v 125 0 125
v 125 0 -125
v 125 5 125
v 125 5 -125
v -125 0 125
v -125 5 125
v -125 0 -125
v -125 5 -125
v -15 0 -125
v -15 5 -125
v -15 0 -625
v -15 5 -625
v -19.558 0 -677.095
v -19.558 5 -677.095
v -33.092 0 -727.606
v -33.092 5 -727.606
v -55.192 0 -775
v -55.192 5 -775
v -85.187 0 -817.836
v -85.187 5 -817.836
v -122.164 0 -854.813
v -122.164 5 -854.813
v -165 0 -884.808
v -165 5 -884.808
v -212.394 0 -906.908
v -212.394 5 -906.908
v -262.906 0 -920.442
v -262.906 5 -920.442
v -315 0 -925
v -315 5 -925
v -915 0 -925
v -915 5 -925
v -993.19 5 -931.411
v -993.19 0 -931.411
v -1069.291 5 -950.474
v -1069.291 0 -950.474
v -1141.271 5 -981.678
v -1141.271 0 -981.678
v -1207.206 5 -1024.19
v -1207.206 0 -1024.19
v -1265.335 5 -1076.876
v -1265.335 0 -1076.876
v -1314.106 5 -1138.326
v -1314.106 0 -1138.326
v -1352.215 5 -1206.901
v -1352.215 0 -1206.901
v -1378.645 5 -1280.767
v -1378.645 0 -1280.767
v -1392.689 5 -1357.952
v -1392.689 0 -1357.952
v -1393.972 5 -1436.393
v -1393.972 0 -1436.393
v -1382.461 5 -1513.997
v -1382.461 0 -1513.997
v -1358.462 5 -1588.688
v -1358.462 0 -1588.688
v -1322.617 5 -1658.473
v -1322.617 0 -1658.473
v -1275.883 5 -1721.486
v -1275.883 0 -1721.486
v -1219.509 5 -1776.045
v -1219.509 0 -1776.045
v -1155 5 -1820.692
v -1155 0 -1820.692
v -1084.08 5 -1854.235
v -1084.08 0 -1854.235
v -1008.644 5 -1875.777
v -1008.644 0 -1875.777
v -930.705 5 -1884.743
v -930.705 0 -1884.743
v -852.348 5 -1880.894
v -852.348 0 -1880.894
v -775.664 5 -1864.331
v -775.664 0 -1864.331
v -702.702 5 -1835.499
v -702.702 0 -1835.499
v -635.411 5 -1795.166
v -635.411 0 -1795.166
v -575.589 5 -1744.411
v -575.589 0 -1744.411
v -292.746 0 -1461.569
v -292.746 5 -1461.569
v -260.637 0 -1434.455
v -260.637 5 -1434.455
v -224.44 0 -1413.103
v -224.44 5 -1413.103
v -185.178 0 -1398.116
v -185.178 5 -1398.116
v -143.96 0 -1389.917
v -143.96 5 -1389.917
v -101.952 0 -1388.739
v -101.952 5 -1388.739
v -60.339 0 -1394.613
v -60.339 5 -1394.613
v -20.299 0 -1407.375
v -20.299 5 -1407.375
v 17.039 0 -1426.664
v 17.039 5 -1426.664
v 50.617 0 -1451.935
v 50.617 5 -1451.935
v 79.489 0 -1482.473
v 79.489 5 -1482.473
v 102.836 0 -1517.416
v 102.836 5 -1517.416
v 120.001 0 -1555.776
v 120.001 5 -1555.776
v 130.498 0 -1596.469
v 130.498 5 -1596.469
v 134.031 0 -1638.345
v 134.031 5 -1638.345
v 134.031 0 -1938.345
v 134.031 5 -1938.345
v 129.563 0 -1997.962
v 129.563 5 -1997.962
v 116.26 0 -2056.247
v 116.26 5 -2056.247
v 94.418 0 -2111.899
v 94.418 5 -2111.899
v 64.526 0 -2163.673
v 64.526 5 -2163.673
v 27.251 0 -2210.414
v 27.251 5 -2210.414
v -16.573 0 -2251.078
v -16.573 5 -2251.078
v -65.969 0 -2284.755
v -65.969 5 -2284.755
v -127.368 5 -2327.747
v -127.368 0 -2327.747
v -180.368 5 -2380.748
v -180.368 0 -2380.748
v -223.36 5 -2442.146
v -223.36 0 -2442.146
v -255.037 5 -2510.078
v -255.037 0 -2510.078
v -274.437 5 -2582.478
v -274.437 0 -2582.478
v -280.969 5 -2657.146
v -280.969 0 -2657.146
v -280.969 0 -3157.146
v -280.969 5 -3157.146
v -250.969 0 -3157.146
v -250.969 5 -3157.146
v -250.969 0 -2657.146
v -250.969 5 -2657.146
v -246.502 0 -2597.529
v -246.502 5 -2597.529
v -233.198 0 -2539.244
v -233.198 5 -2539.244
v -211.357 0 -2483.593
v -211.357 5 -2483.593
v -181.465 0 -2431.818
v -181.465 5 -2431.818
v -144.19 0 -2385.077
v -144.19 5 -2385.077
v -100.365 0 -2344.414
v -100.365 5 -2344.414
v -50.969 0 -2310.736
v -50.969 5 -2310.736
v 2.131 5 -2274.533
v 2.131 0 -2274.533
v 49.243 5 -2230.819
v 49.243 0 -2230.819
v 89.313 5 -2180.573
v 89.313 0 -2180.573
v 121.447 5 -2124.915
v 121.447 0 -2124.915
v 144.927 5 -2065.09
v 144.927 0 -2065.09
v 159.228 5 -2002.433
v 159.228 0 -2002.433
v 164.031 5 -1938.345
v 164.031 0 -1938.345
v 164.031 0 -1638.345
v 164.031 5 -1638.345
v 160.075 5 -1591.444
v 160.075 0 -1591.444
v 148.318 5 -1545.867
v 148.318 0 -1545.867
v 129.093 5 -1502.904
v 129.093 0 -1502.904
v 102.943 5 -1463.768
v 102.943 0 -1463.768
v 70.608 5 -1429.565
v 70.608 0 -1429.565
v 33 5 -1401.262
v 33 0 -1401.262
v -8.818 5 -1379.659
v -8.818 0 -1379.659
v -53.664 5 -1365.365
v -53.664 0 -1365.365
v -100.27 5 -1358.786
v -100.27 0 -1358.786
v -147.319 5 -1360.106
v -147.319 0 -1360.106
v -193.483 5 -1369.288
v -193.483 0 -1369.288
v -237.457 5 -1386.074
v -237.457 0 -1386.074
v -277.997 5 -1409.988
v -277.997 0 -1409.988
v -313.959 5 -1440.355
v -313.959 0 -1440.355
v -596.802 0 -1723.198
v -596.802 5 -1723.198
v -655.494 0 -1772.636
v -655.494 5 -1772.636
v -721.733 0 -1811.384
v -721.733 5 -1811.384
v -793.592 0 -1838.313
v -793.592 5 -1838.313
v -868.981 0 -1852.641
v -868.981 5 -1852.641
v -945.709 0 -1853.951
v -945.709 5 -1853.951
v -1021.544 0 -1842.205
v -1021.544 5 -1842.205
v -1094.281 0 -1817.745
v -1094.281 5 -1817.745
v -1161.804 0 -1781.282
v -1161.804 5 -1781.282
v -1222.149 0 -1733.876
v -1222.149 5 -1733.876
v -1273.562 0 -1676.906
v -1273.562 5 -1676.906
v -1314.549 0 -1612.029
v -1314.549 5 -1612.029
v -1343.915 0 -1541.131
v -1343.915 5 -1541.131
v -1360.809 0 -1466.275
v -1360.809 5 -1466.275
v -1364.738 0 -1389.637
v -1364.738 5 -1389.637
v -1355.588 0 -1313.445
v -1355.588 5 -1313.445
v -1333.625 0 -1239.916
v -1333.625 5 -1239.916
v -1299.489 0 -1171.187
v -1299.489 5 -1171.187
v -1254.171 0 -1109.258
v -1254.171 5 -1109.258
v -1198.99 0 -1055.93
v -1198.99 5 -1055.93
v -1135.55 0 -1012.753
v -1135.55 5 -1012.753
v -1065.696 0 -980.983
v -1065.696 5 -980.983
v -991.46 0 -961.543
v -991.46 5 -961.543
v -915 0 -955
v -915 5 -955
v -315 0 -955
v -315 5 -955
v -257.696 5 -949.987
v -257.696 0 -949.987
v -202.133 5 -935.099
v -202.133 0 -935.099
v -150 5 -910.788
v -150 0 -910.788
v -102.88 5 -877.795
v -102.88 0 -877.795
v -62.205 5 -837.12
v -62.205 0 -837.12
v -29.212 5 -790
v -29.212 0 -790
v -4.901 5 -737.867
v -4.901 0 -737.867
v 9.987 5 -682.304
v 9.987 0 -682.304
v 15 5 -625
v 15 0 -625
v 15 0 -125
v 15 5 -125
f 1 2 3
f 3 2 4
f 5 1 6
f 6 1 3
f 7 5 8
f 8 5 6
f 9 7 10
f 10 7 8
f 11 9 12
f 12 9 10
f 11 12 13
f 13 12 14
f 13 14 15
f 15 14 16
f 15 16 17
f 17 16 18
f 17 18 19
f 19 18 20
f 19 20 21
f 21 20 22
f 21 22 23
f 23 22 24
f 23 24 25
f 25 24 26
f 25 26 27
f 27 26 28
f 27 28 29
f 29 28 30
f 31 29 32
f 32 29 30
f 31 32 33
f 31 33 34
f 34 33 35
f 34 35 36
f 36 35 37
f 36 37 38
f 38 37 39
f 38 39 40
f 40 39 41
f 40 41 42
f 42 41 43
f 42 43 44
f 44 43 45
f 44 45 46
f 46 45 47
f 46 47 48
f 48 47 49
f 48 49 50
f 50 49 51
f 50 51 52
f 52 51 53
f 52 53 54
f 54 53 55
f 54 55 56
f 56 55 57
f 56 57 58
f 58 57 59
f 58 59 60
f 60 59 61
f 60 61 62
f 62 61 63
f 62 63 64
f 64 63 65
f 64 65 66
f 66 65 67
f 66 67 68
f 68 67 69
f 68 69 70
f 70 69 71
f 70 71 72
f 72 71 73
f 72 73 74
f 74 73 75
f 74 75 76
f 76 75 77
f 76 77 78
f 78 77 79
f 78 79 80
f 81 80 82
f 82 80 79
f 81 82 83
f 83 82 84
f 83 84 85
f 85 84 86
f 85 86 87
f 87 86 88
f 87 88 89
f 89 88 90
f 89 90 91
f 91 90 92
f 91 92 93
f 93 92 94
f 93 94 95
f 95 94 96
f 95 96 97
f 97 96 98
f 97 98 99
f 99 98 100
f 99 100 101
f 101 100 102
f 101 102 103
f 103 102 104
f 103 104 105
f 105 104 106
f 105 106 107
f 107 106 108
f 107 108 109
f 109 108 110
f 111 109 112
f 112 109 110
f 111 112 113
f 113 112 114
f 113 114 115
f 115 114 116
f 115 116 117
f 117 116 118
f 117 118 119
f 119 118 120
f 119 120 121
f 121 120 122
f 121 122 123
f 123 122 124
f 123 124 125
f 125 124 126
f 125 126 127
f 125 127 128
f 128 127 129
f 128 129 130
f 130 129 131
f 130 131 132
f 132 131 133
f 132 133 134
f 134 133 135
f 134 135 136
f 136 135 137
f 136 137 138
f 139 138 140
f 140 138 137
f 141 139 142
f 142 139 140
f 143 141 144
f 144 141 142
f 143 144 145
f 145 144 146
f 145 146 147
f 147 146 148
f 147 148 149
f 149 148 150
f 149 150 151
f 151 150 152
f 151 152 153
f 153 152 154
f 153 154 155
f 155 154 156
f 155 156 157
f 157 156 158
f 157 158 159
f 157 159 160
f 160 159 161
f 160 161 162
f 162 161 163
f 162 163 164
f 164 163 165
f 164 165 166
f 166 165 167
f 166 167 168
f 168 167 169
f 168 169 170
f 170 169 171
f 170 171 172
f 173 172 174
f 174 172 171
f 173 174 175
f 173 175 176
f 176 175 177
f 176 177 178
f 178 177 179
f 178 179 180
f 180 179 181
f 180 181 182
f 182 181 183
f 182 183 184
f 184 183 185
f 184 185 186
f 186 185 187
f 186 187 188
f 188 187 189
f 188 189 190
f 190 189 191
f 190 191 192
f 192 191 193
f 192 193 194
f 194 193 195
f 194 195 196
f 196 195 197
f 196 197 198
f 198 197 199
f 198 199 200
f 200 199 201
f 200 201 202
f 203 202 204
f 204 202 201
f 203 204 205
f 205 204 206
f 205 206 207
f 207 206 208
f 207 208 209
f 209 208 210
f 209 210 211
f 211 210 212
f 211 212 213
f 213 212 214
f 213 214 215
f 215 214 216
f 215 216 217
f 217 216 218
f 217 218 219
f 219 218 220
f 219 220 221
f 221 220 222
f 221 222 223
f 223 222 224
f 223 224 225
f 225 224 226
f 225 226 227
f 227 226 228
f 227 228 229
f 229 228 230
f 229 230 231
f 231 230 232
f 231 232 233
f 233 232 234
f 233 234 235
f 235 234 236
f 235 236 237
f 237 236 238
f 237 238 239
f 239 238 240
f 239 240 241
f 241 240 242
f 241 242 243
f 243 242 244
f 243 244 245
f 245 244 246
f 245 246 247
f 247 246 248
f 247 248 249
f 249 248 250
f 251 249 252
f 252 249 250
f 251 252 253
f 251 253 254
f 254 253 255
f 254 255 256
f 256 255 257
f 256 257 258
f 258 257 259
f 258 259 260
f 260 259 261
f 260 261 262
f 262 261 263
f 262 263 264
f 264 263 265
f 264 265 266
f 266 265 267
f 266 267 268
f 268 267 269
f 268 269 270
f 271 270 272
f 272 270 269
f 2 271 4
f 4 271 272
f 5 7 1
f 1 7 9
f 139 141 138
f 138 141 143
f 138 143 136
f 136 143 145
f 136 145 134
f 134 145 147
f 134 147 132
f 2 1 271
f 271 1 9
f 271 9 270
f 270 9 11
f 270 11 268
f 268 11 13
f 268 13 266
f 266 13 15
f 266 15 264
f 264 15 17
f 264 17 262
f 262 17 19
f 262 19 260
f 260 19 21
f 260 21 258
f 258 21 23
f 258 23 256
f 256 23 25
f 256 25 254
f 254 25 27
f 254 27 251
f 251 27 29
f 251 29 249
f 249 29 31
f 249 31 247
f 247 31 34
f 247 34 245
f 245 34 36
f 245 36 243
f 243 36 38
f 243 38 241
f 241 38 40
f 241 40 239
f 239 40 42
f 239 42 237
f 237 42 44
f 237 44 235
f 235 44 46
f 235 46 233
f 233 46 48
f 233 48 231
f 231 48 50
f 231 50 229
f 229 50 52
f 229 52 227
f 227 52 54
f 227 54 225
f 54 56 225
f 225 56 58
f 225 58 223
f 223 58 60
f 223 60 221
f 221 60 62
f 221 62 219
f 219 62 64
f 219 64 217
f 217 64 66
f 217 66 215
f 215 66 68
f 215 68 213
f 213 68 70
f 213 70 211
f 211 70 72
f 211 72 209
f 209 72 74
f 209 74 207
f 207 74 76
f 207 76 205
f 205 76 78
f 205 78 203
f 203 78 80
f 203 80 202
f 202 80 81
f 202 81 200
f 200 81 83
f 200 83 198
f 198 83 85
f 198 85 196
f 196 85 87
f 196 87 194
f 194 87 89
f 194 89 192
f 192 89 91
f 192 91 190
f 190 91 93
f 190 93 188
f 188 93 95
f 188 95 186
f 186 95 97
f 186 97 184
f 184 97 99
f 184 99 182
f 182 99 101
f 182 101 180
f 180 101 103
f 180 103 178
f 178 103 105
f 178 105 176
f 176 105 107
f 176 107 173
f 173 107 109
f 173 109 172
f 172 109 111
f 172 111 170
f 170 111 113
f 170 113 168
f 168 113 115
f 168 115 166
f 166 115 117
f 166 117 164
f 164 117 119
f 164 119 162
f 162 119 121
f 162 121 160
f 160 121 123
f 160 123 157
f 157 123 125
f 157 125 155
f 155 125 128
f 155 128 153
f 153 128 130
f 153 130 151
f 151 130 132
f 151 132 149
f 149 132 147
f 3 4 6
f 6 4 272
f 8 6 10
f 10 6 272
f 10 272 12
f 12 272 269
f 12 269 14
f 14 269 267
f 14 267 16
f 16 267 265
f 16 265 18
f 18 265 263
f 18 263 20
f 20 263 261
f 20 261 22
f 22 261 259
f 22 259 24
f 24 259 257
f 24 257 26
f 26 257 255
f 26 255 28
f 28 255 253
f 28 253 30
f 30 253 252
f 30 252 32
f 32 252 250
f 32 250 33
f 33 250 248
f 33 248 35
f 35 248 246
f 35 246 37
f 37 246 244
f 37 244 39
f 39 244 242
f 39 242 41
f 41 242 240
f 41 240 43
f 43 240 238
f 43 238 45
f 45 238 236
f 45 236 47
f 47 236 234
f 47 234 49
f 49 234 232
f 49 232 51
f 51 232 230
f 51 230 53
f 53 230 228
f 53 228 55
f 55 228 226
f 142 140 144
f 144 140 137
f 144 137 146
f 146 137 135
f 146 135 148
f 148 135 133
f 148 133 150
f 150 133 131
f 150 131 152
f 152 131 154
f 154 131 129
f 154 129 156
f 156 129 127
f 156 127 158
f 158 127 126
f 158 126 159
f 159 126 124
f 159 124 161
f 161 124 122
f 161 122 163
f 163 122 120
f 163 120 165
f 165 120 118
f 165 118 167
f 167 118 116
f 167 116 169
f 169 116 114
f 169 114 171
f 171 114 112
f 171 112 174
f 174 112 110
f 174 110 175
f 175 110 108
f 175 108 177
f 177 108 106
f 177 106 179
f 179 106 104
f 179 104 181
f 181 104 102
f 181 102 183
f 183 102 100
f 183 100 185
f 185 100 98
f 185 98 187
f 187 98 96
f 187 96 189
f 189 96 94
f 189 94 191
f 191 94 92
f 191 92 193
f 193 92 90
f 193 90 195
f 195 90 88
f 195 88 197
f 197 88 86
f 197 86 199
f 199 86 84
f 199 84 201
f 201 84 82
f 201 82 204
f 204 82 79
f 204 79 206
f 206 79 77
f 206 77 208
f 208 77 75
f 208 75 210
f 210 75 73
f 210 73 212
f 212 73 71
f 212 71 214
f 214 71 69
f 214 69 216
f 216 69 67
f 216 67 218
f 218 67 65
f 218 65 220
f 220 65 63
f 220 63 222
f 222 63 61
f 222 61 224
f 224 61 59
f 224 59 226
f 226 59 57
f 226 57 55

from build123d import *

# Parameters (mm, degrees)
BOSS_EXTRUDE1_DEPTH = 5


with BuildPart() as part:
    # Sketch1 → Boss-Extrude1 (new body)
    with BuildSketch(Plane(origin=(0, 0, 0), x_dir=(1, 0, 0), z_dir=(0, 1, 0))):
        with BuildLine():
            Line((-315, 955), (-915, 955))
            ThreePointArc((-915, 955), (-1330.74578963, 1577.207544564), (-596.801948466, 1723.198051534))
            Line((-596.801948466, 1723.198051534), (-313.959235991, 1440.355339059))
            ThreePointArc((-313.959235991, 1440.355339059), (-8.817976197, 1379.658968688), (164.030662741, 1638.345237792))
            Line((164.030662741, 1638.345237792), (164.030662741, 1938.345237792))
            ThreePointArc((164.030662741, 1938.345237792), (106.421586368, 2153.345237792), (-50.969337259, 2310.736161419))
            ThreePointArc((-50.969337259, 2310.736161419), (-197.379498773, 2457.146322933), (-250.969337259, 2657.146322933))
            Line((-250.969337259, 2657.146322933), (-250.969337259, 3157.146322933))
            Line((-250.969337259, 3157.146322933), (-280.969337259, 3157.146322933))
            Line((-280.969337259, 3157.146322933), (-280.969337259, 2657.146322933))
            ThreePointArc((-280.969337259, 2657.146322933), (-223.360260887, 2442.146322933), (-65.969337259, 2284.755399305))
            ThreePointArc((-65.969337259, 2284.755399305), (80.440824255, 2138.345237792), (134.030662741, 1938.345237792))
            Line((134.030662741, 1938.345237792), (134.030662741, 1638.345237792))
            ThreePointArc((134.030662741, 1638.345237792), (-20.298479168, 1407.375354664), (-292.746032556, 1461.568542495))
            Line((-292.746032556, 1461.568542495), (-575.58874503, 1744.41125497))
            ThreePointArc((-575.58874503, 1744.41125497), (-1358.462175605, 1588.688047535), (-915, 925))
            Line((-915, 925), (-315, 925))
            ThreePointArc((-315, 925), (-102.867965644, 837.132034356), (-15, 625))
            Line((-15, 625), (-15, 125))
            Line((-15, 125), (-125, 125))
            Line((-125, 125), (-125, -125))
            Line((-125, -125), (125, -125))
            Line((125, -125), (125, 125))
            Line((125, 125), (15, 125))
            Line((15, 125), (15, 625))
            ThreePointArc((15, 625), (-81.654762208, 858.345237792), (-315, 955))
        make_face()
    extrude(amount=BOSS_EXTRUDE1_DEPTH)


solid = part.part
